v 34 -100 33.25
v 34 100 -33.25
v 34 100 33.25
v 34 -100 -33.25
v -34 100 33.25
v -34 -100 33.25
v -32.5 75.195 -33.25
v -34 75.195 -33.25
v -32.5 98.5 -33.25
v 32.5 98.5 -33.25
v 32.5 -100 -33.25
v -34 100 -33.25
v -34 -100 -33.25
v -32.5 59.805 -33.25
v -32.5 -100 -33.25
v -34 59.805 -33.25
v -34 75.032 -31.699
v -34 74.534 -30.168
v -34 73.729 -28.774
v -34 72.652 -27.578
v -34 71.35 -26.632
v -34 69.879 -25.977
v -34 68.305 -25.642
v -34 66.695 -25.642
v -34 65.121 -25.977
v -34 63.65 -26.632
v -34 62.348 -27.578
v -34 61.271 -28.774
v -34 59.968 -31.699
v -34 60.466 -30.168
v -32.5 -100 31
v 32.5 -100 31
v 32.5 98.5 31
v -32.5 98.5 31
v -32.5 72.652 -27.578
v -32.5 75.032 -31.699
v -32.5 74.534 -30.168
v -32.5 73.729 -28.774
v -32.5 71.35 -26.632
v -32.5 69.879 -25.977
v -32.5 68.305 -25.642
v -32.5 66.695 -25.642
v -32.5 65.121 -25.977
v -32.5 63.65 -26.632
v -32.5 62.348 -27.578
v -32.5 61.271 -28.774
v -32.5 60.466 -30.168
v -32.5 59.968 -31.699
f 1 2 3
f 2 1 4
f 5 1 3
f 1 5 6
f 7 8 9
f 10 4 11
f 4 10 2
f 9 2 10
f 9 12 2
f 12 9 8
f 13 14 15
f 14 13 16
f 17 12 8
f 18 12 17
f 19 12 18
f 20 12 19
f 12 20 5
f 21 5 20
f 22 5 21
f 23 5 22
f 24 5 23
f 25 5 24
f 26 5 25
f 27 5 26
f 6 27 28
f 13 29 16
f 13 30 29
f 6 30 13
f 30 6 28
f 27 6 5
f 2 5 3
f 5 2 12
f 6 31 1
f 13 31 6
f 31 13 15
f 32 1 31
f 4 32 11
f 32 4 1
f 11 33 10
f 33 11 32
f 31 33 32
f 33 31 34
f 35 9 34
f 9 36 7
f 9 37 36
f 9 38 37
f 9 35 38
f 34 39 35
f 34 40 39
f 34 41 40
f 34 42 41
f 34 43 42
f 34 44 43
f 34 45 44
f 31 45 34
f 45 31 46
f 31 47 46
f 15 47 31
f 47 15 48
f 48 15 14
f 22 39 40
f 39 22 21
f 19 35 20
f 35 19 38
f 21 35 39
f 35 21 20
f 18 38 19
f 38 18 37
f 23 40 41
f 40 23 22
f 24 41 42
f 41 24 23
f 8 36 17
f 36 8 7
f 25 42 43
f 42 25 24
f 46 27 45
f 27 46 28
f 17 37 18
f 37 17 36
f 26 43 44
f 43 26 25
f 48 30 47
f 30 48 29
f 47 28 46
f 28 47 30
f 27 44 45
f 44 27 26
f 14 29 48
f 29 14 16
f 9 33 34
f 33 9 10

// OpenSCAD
// Cubes enclosure, emission light path. DoMB SPIM
// Borys Olifirov 2024

FDM_offset = 0.2;

enc_w = 65;
enc_h = 65;
enc_l = 200;

wall_t = 1.5;

port_d = 15;

p_h = 9;


module EmEnclosure() {
    union() {
        // enclosure walls
        // side and top walls
        difference() {
            cube([enc_w+2*wall_t,enc_l,enc_h+wall_t], center = true);
            translate([0,0,-wall_t])
                cube([enc_w,enc_l,enc_h], center = true);
            
            // wires port
            translate([-enc_w/2,enc_l/2-port_d/2-25,-(enc_h/2+4*FDM_offset)])
            rotate([90,0,90])
                cylinder(d = port_d+2*FDM_offset,
                         h = 40,
                         center = true, $fn=30);
        }
        difference() {
            // rare wall
            translate([0,enc_l/2-wall_t/2,0])
                cube([enc_w+wall_t,wall_t,enc_h+wall_t], center = true);
        }
    }
}

EmEnclosure();
